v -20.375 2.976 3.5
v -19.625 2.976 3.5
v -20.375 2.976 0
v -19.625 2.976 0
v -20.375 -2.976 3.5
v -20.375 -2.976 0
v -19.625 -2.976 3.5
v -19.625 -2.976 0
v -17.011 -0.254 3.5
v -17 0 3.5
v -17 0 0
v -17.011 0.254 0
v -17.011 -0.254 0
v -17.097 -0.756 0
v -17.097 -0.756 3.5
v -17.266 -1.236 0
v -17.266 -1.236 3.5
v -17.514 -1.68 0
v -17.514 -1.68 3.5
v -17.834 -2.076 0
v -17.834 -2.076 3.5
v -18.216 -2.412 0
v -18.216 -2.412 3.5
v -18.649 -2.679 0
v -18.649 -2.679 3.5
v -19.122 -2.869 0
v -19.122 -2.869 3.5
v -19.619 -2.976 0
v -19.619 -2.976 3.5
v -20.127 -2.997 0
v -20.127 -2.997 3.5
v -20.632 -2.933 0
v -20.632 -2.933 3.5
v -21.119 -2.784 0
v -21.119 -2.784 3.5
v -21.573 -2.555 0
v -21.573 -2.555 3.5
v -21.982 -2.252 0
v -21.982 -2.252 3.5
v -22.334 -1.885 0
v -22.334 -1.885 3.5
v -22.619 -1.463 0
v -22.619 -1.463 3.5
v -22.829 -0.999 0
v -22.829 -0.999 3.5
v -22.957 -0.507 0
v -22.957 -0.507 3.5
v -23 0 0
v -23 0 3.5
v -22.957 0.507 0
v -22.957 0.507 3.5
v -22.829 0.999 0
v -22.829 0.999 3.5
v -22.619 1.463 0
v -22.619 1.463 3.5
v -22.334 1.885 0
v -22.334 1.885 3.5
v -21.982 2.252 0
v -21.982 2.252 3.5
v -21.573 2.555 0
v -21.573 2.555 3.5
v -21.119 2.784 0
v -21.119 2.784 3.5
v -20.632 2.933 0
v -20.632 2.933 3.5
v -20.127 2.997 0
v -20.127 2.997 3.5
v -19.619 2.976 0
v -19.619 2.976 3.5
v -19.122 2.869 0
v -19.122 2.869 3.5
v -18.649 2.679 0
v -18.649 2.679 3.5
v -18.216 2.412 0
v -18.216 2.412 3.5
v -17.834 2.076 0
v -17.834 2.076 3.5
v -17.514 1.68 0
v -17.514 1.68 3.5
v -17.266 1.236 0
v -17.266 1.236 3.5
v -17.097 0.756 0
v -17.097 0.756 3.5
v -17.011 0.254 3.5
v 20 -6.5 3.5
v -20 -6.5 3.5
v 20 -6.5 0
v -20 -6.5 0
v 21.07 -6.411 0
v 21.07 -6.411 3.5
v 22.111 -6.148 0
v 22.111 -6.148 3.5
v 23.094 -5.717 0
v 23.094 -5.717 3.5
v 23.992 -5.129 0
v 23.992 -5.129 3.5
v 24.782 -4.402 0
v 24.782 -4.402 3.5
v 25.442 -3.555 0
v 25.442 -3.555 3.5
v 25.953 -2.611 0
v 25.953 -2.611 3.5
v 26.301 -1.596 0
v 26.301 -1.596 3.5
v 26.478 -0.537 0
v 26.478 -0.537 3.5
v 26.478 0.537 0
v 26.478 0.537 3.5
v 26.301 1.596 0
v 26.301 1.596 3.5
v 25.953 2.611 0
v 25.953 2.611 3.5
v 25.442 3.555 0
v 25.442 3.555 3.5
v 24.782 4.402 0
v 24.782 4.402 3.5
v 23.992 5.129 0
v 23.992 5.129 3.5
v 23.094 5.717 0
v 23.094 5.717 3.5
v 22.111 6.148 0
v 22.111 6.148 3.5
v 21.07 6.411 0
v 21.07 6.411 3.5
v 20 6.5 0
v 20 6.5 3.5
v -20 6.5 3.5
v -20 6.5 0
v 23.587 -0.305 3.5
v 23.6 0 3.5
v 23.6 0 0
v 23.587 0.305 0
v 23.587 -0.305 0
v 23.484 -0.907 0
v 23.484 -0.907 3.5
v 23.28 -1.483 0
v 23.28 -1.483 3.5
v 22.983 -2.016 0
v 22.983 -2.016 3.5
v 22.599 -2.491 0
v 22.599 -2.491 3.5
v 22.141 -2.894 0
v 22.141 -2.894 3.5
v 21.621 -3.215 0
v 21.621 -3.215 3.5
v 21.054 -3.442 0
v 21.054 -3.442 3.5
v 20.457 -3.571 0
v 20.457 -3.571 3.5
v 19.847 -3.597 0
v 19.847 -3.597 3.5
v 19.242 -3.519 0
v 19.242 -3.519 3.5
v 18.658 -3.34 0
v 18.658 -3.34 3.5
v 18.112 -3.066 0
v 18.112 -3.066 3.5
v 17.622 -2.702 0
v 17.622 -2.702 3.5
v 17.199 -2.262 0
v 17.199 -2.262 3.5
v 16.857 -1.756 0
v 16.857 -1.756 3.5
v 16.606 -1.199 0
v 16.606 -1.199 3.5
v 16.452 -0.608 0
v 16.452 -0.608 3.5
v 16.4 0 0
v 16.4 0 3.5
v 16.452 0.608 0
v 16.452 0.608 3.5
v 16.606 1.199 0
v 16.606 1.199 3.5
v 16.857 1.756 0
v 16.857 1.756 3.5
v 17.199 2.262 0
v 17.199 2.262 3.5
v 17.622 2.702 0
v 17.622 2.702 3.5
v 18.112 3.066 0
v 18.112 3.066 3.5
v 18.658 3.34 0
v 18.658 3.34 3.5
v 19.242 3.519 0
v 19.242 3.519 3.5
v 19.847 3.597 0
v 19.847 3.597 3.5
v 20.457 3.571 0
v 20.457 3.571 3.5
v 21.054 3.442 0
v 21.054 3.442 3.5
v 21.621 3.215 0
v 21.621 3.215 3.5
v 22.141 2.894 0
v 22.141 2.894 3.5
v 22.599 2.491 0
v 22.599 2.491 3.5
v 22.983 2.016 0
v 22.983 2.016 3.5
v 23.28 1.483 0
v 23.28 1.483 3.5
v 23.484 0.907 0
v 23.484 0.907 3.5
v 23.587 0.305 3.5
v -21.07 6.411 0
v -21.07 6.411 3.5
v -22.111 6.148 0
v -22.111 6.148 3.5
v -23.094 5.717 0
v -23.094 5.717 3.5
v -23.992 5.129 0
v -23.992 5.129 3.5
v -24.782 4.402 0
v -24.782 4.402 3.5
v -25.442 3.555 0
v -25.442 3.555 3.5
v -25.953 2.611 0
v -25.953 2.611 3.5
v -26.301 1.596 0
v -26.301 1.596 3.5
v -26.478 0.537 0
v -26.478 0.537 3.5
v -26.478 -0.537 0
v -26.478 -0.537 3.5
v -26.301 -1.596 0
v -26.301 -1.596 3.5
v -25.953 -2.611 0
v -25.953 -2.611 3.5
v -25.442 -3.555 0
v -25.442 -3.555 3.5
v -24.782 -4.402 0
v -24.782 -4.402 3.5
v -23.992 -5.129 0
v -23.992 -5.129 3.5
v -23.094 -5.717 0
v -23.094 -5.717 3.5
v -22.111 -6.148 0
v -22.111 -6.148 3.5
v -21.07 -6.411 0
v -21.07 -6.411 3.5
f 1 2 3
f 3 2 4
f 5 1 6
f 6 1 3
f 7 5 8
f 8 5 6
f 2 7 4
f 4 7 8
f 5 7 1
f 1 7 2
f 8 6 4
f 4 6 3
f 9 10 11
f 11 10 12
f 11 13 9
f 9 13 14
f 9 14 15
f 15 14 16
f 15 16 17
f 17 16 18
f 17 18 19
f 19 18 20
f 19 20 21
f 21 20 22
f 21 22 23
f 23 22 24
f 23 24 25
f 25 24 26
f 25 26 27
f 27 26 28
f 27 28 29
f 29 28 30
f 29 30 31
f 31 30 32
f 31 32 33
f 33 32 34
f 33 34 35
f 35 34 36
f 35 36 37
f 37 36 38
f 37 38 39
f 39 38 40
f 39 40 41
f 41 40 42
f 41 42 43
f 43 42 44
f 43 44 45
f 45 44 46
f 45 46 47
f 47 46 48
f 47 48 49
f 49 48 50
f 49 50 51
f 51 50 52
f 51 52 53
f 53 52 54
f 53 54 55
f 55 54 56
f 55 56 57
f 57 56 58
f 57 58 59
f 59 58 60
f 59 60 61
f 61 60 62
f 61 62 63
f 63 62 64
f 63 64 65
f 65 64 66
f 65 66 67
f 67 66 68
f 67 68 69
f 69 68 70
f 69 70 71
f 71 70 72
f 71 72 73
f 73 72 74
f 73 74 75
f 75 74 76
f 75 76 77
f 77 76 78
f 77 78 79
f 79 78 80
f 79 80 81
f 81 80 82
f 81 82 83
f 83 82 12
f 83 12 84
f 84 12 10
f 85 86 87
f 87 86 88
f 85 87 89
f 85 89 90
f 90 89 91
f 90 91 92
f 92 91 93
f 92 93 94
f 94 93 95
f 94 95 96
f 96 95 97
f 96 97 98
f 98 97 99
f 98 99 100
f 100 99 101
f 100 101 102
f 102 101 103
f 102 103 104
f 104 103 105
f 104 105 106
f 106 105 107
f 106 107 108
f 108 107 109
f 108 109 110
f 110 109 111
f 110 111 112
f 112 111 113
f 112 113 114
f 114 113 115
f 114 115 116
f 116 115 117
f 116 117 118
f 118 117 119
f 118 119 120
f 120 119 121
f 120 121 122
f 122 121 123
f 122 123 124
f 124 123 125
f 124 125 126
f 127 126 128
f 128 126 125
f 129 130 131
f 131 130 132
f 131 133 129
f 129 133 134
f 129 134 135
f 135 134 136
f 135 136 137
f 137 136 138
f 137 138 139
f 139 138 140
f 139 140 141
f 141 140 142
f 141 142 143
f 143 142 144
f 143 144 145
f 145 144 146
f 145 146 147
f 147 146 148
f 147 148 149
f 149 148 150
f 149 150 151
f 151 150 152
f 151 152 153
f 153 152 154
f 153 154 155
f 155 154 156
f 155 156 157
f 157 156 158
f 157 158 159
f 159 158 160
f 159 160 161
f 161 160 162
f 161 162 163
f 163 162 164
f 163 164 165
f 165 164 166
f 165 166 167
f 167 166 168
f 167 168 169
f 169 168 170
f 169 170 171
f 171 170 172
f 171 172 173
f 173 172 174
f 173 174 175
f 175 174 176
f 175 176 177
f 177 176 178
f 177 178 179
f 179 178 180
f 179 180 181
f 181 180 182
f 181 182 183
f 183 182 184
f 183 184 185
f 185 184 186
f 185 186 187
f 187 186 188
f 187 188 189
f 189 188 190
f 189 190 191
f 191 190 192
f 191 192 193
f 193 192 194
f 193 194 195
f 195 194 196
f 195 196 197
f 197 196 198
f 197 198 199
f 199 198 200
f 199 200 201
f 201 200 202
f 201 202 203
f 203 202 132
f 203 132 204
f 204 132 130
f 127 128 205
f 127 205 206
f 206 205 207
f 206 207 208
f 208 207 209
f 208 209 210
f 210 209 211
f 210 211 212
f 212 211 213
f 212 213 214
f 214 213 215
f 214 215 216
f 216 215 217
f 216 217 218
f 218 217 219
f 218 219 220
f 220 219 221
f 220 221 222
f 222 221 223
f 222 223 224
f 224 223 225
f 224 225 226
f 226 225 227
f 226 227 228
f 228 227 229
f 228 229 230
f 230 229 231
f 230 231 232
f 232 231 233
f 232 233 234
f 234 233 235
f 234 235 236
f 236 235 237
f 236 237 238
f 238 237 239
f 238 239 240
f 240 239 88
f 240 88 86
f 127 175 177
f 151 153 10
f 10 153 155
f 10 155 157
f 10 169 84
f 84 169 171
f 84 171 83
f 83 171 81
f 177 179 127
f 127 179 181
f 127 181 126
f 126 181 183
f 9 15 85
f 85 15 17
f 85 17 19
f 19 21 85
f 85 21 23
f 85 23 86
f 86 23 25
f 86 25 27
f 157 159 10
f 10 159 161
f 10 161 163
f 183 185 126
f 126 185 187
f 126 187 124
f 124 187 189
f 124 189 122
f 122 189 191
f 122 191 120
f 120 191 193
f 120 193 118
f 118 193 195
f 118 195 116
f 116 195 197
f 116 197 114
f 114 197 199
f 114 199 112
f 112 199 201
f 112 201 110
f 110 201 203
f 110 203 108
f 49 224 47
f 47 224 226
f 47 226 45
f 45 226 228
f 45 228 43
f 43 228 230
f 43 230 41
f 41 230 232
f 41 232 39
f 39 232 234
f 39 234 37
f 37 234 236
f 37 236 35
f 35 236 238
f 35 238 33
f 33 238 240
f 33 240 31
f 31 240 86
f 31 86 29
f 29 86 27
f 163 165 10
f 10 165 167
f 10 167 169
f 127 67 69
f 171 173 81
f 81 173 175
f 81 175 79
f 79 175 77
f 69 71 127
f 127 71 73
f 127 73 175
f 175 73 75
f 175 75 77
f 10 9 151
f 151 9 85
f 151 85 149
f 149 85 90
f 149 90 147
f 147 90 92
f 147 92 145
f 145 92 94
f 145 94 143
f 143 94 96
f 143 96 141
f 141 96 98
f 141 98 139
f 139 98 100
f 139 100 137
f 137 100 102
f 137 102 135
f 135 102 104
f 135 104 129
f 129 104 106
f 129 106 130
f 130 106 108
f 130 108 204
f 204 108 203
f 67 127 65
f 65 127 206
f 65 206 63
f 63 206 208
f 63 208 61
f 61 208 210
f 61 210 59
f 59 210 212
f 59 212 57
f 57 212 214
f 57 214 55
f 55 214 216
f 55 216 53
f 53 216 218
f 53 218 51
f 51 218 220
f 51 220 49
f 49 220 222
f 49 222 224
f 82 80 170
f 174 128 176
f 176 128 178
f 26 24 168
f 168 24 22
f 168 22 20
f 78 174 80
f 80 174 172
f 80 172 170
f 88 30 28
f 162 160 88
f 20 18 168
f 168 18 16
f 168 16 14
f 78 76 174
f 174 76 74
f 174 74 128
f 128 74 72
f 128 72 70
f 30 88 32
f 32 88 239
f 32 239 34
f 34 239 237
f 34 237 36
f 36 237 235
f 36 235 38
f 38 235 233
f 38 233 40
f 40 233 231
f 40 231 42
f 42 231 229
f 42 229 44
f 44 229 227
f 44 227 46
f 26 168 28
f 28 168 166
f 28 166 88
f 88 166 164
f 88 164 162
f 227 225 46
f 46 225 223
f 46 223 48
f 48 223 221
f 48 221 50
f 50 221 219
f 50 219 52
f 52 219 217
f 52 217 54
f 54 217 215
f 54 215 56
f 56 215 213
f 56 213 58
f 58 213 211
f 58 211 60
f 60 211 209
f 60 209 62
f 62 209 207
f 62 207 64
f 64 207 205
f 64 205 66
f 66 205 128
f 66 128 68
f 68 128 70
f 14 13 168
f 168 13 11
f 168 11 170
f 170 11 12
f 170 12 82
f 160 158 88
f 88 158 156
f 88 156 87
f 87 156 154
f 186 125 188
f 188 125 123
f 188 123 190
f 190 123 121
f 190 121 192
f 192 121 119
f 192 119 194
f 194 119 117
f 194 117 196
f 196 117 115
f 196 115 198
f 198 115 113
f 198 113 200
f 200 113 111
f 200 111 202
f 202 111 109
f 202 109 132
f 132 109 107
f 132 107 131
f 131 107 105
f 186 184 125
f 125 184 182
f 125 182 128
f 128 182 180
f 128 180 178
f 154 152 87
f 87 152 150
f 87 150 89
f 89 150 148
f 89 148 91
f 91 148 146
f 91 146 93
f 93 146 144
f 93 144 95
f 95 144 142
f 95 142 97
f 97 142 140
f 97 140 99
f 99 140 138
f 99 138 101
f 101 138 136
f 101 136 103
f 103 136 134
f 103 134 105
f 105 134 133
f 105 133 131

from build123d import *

# Parameters (mm, degrees)
SKETCH_1_R        = 3.6
SKETCH_1_R_2      = 3
EXTRUDE_3_DEPTH   = 3.5
SKETCH_1_W        = 0.75
SKETCH_1_H        = 5.95294045
EXTRUDE_3_2_DEPTH = 3.5


with BuildPart() as part:
    # 草图1 → 凸台-拉伸3 (new body)
    with BuildSketch(Plane.XY):
        with BuildLine():
            Line((-20, -6.5), (20, -6.5))
            ThreePointArc((20, -6.5), (26.5, 0), (20, 6.5))
            Line((20, 6.5), (-20, 6.5))
            ThreePointArc((-20, 6.5), (-26.5, 0), (-20, -6.5))
        make_face()
        with Locations((20, 0)):
            Circle(SKETCH_1_R, mode=Mode.SUBTRACT)
        with Locations((-20, 0)):
            Circle(SKETCH_1_R_2, mode=Mode.SUBTRACT)
    extrude(amount=EXTRUDE_3_DEPTH)


with BuildPart() as body_2:
    # 草图1 → Extrude 3 2 (new body)
    with BuildSketch(Plane.XY):
        with Locations((-20, 0)):
            Rectangle(SKETCH_1_W, SKETCH_1_H)
    extrude(amount=EXTRUDE_3_2_DEPTH)


solid = Compound([part.part, body_2.part])
